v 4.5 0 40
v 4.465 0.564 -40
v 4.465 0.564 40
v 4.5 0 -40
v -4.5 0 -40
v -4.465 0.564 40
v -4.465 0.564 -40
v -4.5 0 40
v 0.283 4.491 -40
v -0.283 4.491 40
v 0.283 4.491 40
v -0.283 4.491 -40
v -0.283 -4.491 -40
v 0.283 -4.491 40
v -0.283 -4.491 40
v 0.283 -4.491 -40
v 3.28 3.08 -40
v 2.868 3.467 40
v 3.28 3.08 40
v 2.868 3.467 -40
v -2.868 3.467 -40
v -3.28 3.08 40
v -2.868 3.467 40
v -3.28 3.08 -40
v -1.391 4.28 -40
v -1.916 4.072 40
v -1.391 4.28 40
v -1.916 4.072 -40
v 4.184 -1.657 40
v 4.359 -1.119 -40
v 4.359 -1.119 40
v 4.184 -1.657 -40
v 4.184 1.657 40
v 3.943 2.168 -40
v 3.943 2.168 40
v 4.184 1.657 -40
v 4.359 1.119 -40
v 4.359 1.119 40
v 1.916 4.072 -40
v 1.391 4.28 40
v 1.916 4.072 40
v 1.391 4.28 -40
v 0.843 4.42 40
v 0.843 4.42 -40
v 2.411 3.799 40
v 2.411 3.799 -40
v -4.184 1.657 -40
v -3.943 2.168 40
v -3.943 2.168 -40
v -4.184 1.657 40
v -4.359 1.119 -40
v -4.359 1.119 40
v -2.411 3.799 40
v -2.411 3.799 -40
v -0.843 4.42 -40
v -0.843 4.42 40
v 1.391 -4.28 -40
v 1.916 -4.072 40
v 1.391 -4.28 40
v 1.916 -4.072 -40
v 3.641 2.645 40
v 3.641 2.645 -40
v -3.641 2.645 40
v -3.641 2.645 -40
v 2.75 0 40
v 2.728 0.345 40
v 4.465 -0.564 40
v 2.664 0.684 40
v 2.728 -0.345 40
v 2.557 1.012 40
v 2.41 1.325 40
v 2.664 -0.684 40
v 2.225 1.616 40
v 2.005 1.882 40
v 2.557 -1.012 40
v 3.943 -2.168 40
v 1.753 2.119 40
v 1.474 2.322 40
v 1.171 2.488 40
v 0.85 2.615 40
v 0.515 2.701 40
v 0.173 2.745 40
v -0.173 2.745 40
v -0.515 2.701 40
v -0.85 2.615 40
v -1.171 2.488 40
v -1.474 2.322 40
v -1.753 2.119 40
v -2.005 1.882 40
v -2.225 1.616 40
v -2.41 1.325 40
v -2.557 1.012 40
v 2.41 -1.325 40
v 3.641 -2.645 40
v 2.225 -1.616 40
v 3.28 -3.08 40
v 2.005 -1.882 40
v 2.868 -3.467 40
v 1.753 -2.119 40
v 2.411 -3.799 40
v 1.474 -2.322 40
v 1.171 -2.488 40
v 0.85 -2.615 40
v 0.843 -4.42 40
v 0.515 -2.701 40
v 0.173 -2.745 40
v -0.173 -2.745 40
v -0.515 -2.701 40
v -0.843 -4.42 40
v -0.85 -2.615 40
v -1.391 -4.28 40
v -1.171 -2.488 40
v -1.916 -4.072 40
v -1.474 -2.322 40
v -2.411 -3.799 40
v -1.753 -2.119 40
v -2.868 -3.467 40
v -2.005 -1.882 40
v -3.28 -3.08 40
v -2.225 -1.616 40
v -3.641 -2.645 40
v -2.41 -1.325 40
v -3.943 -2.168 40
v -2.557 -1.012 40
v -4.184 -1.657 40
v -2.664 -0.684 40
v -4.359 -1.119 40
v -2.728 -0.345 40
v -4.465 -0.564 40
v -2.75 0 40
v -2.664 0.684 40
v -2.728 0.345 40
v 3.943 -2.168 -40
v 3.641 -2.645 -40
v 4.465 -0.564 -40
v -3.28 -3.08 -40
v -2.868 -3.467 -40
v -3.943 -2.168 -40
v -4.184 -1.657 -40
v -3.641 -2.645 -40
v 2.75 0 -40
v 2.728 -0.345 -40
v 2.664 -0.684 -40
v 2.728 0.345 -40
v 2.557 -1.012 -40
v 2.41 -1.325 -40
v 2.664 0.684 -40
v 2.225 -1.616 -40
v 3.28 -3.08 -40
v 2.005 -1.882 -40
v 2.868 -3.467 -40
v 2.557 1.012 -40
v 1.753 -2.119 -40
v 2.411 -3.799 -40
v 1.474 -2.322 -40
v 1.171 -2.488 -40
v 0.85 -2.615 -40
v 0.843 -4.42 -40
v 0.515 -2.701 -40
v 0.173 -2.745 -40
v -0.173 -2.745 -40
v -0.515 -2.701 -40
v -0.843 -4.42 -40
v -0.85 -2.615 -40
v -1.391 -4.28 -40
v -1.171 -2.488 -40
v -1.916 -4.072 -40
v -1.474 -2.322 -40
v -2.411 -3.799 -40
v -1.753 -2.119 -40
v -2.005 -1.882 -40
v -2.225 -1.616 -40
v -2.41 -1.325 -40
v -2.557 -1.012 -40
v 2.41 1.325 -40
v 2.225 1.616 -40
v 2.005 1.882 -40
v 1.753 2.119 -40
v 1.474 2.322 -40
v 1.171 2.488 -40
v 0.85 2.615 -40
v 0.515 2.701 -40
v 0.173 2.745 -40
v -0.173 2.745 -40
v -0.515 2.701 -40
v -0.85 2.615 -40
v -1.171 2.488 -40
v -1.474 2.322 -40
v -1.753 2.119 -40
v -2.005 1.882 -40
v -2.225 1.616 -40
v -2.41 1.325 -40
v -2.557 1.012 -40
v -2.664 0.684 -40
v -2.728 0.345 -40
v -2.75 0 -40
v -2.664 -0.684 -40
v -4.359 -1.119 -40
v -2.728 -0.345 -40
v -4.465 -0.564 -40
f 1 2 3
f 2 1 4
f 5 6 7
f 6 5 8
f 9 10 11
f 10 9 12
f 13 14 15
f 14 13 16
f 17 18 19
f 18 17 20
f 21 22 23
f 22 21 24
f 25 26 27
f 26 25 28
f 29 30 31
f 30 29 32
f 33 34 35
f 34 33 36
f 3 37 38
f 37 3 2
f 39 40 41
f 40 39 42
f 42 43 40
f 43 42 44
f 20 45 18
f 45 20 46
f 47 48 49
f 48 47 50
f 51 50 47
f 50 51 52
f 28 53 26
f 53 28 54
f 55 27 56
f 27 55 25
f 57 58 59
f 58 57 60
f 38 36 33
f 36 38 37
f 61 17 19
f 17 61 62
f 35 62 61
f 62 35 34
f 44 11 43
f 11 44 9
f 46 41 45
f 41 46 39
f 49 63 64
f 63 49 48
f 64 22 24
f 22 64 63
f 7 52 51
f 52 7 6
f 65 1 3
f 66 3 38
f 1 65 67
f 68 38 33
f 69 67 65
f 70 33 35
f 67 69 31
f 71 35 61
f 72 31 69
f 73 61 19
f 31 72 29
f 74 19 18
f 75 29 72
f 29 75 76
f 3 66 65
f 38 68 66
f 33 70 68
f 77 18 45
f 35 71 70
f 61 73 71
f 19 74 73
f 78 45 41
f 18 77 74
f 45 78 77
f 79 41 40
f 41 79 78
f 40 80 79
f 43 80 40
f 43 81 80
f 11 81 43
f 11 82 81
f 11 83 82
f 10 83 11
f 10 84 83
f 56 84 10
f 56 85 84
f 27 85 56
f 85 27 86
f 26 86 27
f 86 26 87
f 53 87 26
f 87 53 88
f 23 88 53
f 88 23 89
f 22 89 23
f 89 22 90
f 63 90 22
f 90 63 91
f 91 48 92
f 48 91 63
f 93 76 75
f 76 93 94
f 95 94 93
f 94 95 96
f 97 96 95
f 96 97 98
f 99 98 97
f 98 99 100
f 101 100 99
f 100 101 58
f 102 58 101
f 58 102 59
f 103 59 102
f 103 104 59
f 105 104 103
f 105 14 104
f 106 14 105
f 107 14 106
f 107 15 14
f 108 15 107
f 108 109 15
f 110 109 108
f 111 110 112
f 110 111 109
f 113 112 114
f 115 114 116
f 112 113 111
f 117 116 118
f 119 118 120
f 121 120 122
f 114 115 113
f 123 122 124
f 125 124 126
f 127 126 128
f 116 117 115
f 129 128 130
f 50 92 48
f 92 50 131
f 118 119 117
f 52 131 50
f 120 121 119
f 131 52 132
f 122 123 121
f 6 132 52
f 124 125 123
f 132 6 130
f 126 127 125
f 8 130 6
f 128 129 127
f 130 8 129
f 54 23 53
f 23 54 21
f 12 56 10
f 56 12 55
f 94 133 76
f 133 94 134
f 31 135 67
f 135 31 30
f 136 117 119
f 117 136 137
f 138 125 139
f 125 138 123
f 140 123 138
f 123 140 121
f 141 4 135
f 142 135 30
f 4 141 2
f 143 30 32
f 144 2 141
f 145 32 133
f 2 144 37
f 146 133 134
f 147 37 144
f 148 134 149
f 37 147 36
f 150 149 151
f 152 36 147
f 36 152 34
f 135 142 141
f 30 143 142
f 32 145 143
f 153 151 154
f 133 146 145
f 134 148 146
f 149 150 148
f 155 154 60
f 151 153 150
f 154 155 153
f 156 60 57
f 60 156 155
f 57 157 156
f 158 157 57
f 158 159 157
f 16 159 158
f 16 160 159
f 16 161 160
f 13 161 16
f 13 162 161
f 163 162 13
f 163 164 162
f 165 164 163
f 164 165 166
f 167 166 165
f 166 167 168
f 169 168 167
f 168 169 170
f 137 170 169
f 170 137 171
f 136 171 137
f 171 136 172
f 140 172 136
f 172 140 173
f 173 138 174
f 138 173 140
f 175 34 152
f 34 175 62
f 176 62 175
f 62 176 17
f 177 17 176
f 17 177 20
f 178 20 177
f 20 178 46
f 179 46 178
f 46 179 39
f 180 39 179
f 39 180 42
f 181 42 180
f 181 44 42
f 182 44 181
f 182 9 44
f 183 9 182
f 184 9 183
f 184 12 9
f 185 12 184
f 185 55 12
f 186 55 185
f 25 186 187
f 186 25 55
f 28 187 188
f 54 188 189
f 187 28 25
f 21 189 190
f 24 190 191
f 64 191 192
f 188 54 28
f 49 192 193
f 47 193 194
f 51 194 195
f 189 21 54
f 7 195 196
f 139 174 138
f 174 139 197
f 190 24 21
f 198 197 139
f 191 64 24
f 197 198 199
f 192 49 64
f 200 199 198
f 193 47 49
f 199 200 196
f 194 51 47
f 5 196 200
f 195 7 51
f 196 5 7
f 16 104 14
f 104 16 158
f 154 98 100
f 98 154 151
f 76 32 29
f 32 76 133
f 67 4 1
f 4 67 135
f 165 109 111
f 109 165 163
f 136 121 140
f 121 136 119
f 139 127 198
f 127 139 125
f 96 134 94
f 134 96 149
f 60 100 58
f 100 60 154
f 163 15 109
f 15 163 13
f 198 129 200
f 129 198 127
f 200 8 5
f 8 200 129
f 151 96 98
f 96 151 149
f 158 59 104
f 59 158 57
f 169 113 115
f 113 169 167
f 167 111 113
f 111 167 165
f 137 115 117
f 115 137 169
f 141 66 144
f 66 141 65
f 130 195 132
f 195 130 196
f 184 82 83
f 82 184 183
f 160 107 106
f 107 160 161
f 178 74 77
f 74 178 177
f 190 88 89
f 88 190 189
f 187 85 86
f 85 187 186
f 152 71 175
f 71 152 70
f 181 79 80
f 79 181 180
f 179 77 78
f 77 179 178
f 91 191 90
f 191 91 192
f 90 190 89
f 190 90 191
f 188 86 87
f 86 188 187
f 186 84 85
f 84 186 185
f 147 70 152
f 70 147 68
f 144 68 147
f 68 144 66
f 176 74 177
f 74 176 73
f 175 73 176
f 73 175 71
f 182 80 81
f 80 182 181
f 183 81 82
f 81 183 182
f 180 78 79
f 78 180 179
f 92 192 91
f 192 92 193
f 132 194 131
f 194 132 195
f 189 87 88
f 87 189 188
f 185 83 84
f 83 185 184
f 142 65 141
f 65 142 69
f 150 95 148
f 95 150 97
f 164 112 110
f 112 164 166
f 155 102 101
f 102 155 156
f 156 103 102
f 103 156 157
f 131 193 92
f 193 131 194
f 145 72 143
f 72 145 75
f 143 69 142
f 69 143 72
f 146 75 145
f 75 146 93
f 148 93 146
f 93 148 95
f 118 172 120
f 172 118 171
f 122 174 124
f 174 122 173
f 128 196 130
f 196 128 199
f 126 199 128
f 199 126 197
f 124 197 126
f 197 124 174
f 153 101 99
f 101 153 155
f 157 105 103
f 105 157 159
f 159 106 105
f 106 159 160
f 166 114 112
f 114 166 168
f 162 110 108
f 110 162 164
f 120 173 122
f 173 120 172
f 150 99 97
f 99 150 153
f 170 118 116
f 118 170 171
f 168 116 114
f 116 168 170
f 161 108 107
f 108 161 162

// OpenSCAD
$fn = 50;


difference() {
	union() {
		translate(v = [0, 0, -40.0000000000]) {
			cylinder(h = 80, r = 4.5000000000);
		}
	}
	union() {
		translate(v = [0, 0, -100.0000000000]) {
			cylinder(h = 200, r = 2.7500000000);
		}
	}
}
